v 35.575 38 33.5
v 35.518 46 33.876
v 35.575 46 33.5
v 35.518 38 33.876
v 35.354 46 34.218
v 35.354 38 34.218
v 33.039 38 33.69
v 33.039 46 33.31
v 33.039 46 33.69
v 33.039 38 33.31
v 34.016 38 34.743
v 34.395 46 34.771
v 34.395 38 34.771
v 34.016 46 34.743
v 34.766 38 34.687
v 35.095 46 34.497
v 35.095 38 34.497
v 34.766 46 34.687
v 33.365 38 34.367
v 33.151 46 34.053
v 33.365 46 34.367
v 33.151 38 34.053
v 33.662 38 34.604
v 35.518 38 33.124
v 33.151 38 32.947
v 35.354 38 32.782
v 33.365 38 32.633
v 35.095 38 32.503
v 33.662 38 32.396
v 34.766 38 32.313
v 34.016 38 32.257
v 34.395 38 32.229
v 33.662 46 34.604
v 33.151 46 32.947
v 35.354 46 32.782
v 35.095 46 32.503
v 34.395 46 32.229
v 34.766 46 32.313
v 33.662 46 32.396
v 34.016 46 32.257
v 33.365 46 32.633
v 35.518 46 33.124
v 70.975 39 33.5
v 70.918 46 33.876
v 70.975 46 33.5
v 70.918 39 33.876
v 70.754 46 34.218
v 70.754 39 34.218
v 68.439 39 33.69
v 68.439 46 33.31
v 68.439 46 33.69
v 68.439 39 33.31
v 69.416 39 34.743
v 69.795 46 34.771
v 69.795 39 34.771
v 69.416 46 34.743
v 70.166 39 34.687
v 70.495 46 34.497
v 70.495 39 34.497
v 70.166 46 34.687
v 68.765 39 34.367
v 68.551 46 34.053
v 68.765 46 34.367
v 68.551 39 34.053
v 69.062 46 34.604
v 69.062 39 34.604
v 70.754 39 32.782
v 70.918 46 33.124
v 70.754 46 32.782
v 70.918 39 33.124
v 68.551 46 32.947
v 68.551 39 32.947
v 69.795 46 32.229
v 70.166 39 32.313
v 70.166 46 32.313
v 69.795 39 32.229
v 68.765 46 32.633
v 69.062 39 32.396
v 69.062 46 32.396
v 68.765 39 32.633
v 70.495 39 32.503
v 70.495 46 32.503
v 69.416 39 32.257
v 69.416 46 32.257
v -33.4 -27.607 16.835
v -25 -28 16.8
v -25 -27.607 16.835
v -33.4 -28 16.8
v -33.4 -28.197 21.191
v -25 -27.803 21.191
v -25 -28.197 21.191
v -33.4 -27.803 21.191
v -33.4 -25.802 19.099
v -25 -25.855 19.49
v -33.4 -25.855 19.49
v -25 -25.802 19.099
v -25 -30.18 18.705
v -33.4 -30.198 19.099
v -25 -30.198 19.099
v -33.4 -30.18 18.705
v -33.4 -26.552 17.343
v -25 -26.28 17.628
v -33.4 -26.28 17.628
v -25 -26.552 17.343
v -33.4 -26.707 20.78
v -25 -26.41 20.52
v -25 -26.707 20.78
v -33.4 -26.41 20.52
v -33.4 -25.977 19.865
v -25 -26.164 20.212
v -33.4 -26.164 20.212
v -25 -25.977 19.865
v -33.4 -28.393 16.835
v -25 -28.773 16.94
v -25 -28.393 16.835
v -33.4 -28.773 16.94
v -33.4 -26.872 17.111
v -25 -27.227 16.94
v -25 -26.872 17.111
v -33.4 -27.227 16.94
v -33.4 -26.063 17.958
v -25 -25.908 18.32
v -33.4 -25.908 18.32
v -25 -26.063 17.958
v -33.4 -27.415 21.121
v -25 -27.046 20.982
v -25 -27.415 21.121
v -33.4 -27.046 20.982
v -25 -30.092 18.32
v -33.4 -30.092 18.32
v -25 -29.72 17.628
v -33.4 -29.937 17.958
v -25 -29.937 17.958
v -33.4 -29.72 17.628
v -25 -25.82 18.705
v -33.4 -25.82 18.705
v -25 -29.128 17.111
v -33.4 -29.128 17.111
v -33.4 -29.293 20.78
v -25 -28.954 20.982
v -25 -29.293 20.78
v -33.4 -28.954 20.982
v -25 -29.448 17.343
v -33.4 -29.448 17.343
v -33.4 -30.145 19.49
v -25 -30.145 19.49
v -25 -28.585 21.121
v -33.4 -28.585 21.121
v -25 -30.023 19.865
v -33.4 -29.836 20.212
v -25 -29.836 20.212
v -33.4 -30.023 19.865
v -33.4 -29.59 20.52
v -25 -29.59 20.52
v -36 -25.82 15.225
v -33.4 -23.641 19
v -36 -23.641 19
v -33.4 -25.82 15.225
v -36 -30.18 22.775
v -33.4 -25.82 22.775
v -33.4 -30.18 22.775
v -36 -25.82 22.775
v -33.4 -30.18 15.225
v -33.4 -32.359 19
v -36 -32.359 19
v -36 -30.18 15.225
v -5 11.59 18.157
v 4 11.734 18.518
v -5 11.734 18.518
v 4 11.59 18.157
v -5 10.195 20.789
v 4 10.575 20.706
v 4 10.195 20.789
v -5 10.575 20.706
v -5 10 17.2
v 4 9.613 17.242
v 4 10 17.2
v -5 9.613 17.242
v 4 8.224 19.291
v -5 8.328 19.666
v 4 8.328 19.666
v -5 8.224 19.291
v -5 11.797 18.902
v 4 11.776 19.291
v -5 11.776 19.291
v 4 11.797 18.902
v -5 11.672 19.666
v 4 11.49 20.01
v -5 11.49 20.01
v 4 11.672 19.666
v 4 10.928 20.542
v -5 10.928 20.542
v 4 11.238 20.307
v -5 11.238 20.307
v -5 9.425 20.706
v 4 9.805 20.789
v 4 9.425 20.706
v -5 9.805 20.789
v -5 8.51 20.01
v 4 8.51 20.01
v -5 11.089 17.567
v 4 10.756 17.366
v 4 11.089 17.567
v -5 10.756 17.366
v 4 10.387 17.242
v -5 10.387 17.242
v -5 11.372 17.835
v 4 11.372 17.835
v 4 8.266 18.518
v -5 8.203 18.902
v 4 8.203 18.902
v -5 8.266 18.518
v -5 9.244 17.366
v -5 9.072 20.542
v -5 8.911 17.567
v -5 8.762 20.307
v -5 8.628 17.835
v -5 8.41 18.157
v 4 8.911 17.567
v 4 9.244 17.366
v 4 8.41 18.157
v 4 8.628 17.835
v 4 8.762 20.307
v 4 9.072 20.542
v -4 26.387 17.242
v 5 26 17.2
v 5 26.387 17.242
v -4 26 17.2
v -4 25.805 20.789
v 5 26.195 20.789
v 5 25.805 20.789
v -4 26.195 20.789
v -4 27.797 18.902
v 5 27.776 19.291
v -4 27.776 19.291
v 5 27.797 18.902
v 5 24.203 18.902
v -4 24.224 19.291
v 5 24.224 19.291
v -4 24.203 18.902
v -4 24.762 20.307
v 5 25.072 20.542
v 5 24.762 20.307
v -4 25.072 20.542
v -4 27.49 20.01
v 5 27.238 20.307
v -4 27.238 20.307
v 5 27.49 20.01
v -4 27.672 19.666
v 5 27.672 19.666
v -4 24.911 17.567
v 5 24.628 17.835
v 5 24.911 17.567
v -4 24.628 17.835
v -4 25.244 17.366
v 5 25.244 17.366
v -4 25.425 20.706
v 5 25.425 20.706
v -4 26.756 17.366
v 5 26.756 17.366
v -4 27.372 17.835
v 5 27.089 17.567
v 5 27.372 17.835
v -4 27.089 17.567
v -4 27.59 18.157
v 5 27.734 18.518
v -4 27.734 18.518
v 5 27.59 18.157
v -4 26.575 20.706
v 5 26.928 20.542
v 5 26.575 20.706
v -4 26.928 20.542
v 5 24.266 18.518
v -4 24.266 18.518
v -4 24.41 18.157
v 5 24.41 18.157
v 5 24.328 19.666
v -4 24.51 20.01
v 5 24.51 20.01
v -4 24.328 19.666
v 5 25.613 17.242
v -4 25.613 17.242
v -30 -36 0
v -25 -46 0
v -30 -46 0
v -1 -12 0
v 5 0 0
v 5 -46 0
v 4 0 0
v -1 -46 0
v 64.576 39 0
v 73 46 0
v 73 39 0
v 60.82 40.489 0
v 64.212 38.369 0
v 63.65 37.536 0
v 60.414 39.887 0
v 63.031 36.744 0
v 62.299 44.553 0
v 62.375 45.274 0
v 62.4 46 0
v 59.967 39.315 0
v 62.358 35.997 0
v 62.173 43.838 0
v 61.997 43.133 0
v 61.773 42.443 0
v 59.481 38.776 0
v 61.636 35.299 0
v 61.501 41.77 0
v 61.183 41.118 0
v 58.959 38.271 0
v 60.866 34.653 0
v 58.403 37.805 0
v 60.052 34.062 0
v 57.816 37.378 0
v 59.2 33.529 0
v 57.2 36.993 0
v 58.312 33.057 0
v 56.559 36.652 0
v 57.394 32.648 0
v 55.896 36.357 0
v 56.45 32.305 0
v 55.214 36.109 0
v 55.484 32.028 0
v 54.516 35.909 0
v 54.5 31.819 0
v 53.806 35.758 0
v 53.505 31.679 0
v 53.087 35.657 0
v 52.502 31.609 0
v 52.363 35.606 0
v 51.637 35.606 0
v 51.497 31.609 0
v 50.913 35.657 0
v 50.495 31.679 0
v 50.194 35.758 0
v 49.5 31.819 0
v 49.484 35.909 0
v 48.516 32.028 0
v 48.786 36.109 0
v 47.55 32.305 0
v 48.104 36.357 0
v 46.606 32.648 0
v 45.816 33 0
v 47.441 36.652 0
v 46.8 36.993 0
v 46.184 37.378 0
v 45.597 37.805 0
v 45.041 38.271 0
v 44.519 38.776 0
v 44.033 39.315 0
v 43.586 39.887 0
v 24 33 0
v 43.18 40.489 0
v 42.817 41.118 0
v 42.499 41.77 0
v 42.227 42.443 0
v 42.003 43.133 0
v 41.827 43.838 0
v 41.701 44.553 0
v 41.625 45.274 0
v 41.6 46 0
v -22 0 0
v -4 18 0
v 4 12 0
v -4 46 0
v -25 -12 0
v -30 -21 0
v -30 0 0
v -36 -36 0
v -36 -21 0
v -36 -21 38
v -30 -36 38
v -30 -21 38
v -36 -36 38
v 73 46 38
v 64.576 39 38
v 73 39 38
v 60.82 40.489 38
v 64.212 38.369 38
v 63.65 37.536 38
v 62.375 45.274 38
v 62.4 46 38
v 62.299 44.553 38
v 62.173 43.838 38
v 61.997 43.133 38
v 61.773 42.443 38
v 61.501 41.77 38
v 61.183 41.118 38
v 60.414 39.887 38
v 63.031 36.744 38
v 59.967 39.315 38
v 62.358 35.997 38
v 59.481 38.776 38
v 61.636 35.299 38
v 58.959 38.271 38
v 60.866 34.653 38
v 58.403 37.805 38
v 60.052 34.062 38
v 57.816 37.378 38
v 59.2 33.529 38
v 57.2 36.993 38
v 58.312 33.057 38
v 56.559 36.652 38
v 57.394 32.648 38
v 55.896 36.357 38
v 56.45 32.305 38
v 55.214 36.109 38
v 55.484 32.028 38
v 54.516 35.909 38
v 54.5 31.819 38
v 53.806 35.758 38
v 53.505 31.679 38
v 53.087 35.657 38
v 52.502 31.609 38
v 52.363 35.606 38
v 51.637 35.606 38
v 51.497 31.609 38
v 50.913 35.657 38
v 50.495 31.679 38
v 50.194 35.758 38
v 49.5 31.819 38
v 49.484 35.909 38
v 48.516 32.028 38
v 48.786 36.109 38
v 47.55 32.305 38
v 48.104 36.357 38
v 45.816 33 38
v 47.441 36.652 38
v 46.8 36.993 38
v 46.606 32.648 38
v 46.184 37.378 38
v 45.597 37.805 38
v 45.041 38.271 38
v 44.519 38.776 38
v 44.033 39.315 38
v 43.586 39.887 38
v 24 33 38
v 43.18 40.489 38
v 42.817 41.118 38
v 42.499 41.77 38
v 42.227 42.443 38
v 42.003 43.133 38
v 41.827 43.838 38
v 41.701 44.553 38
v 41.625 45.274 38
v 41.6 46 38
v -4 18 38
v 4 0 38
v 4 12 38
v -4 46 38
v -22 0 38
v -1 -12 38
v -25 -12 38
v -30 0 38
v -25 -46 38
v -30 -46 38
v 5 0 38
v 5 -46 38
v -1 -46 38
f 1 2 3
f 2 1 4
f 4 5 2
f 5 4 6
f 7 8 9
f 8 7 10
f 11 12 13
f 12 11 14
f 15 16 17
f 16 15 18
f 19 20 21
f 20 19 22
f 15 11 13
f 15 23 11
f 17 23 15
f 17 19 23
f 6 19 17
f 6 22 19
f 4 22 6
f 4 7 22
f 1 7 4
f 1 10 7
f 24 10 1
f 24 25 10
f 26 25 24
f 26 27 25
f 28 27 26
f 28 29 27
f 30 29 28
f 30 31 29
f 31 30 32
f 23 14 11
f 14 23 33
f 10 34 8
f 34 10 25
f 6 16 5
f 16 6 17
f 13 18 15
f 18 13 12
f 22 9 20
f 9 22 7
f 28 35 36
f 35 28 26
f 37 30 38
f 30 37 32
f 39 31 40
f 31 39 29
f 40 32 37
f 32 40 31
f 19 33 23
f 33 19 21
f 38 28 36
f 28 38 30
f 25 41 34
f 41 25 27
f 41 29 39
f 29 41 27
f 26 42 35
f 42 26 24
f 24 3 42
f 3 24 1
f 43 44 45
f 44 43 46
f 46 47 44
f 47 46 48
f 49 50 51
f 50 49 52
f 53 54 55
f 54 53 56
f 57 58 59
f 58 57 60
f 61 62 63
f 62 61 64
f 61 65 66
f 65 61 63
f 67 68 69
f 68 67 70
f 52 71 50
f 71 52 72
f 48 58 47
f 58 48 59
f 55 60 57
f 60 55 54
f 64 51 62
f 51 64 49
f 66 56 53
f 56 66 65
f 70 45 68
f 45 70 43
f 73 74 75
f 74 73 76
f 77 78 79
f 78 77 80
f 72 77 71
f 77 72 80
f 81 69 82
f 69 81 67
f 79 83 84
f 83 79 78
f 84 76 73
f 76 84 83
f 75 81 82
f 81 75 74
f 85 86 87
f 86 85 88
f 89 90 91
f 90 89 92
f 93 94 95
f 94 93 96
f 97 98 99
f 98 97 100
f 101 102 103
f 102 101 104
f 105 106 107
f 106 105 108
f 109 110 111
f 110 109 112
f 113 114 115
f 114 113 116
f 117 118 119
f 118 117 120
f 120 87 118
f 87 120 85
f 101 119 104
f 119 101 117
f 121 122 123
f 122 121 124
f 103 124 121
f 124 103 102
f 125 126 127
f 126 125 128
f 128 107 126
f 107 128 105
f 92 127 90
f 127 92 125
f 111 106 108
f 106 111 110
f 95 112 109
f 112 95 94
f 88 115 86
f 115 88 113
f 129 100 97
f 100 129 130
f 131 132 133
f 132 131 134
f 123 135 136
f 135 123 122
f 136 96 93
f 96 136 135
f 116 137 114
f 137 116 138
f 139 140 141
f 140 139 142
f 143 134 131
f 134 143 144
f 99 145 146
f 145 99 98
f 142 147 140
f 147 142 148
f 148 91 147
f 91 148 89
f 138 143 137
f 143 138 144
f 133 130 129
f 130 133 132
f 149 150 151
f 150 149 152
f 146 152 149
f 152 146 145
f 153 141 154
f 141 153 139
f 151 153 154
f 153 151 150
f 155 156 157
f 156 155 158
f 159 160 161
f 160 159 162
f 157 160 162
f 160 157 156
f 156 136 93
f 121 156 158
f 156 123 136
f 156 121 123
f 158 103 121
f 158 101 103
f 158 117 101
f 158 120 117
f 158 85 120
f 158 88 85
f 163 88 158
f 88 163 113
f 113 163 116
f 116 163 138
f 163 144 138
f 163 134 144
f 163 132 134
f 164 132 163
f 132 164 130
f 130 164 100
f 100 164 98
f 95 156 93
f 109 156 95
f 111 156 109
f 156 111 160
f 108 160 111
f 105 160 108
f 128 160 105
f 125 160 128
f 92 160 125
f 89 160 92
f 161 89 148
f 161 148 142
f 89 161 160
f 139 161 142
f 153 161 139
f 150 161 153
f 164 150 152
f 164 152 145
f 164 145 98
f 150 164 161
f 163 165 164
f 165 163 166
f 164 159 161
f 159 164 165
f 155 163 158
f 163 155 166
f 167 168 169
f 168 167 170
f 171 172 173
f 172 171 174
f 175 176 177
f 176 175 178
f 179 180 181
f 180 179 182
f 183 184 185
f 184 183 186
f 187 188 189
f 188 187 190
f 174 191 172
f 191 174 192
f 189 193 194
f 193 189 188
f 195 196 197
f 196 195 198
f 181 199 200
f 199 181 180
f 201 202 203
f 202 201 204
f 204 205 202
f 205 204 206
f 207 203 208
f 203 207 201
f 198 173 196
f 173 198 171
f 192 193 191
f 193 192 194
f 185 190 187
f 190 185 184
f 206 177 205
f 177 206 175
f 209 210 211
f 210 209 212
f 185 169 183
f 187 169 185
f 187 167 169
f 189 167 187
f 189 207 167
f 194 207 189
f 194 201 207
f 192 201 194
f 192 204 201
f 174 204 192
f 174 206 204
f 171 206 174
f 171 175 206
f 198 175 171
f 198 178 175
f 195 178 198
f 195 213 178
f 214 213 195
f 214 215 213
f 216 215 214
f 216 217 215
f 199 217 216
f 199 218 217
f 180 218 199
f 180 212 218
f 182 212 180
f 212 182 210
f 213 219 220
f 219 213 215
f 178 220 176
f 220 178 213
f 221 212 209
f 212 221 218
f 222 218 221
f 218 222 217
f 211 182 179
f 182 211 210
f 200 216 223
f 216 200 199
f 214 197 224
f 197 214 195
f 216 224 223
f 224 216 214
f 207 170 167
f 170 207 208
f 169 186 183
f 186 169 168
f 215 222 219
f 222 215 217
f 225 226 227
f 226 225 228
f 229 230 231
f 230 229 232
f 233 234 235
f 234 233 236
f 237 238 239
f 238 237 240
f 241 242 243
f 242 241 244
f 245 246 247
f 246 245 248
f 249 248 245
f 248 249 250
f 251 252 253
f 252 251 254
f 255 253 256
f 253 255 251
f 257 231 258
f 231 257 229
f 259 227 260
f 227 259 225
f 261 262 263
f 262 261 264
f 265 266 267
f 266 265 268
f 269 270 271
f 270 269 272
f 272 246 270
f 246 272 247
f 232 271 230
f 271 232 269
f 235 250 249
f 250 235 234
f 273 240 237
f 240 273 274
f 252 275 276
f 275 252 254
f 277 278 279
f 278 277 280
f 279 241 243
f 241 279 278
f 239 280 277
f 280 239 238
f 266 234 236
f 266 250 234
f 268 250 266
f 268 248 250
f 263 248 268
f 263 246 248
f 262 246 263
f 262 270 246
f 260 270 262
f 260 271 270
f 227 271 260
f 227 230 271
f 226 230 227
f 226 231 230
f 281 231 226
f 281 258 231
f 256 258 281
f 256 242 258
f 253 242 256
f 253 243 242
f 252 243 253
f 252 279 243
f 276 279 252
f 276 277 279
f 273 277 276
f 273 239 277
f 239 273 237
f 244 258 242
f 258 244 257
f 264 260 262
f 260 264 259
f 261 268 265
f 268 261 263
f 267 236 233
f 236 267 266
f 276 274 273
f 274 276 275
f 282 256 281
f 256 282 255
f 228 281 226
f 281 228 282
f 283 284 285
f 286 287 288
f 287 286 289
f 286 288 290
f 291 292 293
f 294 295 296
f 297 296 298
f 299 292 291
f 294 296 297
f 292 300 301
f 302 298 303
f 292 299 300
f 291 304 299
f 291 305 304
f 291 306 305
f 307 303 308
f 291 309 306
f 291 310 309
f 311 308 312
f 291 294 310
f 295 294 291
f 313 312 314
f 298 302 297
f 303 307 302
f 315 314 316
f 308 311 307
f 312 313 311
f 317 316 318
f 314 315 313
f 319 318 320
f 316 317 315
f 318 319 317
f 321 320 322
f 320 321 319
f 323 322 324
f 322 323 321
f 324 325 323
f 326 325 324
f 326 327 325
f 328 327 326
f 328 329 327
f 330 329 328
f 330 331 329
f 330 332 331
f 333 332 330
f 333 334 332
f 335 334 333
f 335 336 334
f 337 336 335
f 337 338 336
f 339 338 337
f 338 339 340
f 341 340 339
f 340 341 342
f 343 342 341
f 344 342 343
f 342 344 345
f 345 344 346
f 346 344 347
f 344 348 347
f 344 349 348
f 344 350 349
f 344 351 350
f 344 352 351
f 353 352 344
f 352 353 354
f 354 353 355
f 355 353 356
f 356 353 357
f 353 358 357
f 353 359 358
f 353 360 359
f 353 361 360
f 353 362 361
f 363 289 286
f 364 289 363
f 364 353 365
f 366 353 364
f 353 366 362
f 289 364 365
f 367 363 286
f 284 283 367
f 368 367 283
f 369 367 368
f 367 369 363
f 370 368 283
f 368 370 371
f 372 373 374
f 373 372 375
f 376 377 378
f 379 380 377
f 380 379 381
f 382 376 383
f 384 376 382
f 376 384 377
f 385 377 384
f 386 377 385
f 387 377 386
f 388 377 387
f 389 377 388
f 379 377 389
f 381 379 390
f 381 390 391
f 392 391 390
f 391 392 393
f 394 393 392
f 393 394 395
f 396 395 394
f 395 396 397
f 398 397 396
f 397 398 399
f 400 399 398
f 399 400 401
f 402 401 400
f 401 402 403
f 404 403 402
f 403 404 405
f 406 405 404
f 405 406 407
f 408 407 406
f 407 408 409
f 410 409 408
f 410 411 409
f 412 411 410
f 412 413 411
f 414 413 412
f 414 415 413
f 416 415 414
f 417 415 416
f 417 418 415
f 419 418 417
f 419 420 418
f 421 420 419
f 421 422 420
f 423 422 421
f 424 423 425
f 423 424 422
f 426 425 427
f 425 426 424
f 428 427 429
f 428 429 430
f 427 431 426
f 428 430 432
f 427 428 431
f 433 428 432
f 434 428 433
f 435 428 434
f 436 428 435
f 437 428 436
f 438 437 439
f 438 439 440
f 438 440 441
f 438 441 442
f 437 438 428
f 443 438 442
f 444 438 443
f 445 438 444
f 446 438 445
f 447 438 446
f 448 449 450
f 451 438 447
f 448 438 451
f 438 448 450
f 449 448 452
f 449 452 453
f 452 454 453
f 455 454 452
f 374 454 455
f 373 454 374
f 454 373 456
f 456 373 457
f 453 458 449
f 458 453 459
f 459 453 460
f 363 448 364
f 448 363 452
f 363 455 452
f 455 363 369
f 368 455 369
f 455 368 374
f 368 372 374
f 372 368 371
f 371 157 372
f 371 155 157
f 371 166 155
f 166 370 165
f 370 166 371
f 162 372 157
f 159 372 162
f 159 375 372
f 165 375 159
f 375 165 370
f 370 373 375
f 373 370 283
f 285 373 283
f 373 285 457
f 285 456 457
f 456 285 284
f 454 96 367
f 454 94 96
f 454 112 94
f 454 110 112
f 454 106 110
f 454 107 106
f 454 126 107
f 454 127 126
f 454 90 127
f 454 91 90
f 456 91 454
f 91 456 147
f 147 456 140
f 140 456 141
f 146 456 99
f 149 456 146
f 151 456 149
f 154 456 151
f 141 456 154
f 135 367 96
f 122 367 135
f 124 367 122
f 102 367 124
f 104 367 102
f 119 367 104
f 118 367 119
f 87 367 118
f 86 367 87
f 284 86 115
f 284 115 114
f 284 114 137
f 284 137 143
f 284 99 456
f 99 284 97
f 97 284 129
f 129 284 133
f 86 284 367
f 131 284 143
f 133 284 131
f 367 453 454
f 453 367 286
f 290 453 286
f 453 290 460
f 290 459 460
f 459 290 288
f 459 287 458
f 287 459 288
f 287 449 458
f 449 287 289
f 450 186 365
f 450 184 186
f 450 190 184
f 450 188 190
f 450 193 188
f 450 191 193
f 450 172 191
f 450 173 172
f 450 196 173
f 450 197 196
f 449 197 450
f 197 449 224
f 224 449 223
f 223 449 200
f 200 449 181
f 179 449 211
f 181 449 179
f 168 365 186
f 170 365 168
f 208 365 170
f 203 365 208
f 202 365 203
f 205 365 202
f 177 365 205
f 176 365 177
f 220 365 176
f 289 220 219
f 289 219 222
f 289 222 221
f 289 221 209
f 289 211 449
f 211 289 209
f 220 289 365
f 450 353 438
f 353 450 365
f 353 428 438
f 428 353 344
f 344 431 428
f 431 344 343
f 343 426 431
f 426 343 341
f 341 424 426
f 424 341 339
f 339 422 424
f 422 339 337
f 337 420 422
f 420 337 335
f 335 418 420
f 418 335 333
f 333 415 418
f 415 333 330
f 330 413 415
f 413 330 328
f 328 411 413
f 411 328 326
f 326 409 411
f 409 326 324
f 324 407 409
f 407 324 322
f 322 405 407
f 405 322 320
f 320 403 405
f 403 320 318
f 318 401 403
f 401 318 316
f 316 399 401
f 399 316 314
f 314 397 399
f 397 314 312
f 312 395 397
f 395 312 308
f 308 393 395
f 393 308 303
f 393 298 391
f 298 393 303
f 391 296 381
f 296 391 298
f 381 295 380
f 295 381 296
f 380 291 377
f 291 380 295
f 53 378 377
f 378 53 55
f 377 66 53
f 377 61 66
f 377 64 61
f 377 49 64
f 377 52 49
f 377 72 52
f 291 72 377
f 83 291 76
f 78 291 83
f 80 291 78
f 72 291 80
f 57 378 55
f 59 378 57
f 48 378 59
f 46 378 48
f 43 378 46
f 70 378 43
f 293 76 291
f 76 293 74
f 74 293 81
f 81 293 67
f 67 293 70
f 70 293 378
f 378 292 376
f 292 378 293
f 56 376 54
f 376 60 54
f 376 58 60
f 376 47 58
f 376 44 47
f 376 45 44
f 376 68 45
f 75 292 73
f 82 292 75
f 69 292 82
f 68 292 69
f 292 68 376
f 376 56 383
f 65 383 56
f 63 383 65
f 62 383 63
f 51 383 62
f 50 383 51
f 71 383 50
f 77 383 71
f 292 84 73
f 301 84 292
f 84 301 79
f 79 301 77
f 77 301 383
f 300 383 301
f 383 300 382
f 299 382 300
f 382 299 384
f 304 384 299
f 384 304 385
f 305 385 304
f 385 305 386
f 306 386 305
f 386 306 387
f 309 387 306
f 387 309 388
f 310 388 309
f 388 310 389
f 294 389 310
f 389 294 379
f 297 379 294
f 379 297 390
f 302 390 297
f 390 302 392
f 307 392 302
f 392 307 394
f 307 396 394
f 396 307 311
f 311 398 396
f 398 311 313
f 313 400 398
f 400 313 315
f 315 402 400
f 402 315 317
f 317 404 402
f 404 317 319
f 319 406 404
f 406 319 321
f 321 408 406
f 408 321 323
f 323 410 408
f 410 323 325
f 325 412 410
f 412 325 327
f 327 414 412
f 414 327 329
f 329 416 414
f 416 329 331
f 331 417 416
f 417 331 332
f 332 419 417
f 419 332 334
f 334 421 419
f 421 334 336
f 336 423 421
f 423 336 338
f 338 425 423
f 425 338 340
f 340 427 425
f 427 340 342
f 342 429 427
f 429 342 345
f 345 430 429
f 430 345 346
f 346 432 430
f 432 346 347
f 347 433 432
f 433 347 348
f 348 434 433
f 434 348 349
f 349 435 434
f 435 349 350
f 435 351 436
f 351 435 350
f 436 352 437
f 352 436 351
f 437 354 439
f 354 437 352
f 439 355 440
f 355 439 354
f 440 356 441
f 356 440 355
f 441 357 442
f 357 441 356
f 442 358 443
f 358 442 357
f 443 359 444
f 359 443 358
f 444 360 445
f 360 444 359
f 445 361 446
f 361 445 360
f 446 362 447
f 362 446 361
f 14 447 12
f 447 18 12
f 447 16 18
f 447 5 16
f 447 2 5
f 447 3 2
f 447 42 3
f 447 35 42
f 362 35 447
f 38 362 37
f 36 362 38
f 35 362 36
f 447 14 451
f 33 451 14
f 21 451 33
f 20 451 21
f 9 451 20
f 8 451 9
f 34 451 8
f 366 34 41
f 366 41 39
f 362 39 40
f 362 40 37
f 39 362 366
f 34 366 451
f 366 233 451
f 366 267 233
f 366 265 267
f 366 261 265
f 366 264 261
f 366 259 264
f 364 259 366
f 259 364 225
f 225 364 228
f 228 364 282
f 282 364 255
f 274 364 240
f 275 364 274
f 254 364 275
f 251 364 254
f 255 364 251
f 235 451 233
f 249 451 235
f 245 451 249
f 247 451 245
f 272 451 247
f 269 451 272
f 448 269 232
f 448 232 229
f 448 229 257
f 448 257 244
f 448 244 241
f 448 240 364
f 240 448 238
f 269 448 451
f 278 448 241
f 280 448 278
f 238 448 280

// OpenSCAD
// =====================================================================
//  AquaFeeder -- bracadeira da borda do aquario + mastro + berco do tubo
//
//  A peca e um PERFIL CONSTANTE extrudado 40mm: imprima EM PE, como sai
//  deste arquivo. Zero suporte, zero overhang, maxima resistencia.
//
//  Sistema de coordenadas LOCAL (= orientacao de impressao):
//     x local = eixo Y da montagem  (positivo = para dentro do aquario)
//     y local = eixo Z da montagem  (0 = topo da borda do aquario)
//     z local = eixo X da montagem  (comprimento do tubo)
//
//  AJUSTE PRINCIPAL: mast_h define a altura do eixo do tubo acima da borda.
//  A calha termina ~36mm abaixo do eixo. Com mast_h=46 a saida fica ~10mm
//  ACIMA do nivel da borda. Aumente se seu aquario tem a agua muito alta.
// =====================================================================
include <common.scad>

brk_w      = 38;    // largura (ao longo do tubo) -- berco vai de x=11 a x=49
rim_slot   = 24;    // vao da garra (borda de ate ~22mm + parafuso)
jaw_t      = 5;
web_t      = 12;
mast_t     = 8;
mast_h     = 46;    // topo da borda -> eixo do tubo
tube_y     = 52;    // eixo do tubo, medido da face interna da borda
cradle_wall= 4.0;
arm_h      = 13;

cr_out = barrel_od/2 + cradle_wall;   // 14.4
ear_u  = 6.6;                         // saliencia das orelhas do berco
// A tampa do berco cabe so na janela livre do tubo (x 40..49), entao ha
// UM par de parafusos, no meio dessa janela: x=44.5 -> local z=33.5
bolt_z = [33.5];

// ---------------------------------------------------------------------
module brk_profile() {
  difference() {
    union() {
        // garra interna (lado da agua)
        translate([-1, -web_t - clamp_depth]) square([jaw_t + 1, clamp_depth]);
        // garra externa
        translate([-1 - rim_slot - jaw_t, -web_t - clamp_depth]) square([jaw_t, clamp_depth]);
        // teto da garra
        translate([-1 - rim_slot - jaw_t, -web_t]) square([rim_slot + 2*jaw_t + 1, web_t]);
        // boss da porca M4
        translate([-1 - rim_slot - jaw_t - 6, -36]) square([6.1, 15]);
        // mastro
        translate([-mast_t/2, 0]) square([mast_t, mast_h]);
        // reforco mastro/teto
        polygon([[-mast_t/2, 0], [-mast_t/2, 18], [-22, 0]]);
        // braco
        translate([-mast_t/2, mast_h - arm_h]) square([tube_y + mast_t/2, arm_h]);
        // reforco do braco
        polygon([[mast_t/2, mast_h - arm_h], [mast_t/2, 12], [24, mast_h - arm_h]]);
        // berco + orelhas dos parafusos da tampa
        translate([tube_y, mast_h]) circle(r = cr_out);
        translate([tube_y - cr_out - ear_u, mast_h - 7]) square([2*(cr_out + ear_u), 7]);
    }
    // furo do tubo e corte de tudo que passa do eixo (a tampa fecha por cima)
    translate([tube_y, mast_h]) circle(r = barrel_od/2 + fit/2);
    translate([tube_y - 40, mast_h]) square([80, 40]);
  }
}

module bracket() {
    difference() {
        linear_extrude(brk_w) brk_profile();

        // parafusos M3 que prendem a tampa do berco (roscados na peca)
        for (z = bolt_z, s = [-1, 1])
            translate([tube_y + s*(cr_out + ear_u/2), mast_h + 1, z])
                rotate([90, 0, 0]) cylinder(d = m3_tap, h = 9);

        // parafuso de aperto M4 + alojamento da porca
        translate([-1 - rim_slot - jaw_t - 7, -28, brk_w/2]) rotate([0, 90, 0]) {
            cylinder(d = m4_free + fit, h = 20);
            rotate([0, 0, 30]) nut_trap(m4_nut_af + 0.25, m4_nut_t + 0.2);
        }

        // fixacao da caixa de eletronica no mastro (M4 auto-atarraxante)
        for (v = [10, 26])
            translate([-mast_t/2 - 1, v, brk_w/2]) rotate([0, 90, 0])
                cylinder(d = 3.6, h = mast_t + 2);
    }
}

bracket();
